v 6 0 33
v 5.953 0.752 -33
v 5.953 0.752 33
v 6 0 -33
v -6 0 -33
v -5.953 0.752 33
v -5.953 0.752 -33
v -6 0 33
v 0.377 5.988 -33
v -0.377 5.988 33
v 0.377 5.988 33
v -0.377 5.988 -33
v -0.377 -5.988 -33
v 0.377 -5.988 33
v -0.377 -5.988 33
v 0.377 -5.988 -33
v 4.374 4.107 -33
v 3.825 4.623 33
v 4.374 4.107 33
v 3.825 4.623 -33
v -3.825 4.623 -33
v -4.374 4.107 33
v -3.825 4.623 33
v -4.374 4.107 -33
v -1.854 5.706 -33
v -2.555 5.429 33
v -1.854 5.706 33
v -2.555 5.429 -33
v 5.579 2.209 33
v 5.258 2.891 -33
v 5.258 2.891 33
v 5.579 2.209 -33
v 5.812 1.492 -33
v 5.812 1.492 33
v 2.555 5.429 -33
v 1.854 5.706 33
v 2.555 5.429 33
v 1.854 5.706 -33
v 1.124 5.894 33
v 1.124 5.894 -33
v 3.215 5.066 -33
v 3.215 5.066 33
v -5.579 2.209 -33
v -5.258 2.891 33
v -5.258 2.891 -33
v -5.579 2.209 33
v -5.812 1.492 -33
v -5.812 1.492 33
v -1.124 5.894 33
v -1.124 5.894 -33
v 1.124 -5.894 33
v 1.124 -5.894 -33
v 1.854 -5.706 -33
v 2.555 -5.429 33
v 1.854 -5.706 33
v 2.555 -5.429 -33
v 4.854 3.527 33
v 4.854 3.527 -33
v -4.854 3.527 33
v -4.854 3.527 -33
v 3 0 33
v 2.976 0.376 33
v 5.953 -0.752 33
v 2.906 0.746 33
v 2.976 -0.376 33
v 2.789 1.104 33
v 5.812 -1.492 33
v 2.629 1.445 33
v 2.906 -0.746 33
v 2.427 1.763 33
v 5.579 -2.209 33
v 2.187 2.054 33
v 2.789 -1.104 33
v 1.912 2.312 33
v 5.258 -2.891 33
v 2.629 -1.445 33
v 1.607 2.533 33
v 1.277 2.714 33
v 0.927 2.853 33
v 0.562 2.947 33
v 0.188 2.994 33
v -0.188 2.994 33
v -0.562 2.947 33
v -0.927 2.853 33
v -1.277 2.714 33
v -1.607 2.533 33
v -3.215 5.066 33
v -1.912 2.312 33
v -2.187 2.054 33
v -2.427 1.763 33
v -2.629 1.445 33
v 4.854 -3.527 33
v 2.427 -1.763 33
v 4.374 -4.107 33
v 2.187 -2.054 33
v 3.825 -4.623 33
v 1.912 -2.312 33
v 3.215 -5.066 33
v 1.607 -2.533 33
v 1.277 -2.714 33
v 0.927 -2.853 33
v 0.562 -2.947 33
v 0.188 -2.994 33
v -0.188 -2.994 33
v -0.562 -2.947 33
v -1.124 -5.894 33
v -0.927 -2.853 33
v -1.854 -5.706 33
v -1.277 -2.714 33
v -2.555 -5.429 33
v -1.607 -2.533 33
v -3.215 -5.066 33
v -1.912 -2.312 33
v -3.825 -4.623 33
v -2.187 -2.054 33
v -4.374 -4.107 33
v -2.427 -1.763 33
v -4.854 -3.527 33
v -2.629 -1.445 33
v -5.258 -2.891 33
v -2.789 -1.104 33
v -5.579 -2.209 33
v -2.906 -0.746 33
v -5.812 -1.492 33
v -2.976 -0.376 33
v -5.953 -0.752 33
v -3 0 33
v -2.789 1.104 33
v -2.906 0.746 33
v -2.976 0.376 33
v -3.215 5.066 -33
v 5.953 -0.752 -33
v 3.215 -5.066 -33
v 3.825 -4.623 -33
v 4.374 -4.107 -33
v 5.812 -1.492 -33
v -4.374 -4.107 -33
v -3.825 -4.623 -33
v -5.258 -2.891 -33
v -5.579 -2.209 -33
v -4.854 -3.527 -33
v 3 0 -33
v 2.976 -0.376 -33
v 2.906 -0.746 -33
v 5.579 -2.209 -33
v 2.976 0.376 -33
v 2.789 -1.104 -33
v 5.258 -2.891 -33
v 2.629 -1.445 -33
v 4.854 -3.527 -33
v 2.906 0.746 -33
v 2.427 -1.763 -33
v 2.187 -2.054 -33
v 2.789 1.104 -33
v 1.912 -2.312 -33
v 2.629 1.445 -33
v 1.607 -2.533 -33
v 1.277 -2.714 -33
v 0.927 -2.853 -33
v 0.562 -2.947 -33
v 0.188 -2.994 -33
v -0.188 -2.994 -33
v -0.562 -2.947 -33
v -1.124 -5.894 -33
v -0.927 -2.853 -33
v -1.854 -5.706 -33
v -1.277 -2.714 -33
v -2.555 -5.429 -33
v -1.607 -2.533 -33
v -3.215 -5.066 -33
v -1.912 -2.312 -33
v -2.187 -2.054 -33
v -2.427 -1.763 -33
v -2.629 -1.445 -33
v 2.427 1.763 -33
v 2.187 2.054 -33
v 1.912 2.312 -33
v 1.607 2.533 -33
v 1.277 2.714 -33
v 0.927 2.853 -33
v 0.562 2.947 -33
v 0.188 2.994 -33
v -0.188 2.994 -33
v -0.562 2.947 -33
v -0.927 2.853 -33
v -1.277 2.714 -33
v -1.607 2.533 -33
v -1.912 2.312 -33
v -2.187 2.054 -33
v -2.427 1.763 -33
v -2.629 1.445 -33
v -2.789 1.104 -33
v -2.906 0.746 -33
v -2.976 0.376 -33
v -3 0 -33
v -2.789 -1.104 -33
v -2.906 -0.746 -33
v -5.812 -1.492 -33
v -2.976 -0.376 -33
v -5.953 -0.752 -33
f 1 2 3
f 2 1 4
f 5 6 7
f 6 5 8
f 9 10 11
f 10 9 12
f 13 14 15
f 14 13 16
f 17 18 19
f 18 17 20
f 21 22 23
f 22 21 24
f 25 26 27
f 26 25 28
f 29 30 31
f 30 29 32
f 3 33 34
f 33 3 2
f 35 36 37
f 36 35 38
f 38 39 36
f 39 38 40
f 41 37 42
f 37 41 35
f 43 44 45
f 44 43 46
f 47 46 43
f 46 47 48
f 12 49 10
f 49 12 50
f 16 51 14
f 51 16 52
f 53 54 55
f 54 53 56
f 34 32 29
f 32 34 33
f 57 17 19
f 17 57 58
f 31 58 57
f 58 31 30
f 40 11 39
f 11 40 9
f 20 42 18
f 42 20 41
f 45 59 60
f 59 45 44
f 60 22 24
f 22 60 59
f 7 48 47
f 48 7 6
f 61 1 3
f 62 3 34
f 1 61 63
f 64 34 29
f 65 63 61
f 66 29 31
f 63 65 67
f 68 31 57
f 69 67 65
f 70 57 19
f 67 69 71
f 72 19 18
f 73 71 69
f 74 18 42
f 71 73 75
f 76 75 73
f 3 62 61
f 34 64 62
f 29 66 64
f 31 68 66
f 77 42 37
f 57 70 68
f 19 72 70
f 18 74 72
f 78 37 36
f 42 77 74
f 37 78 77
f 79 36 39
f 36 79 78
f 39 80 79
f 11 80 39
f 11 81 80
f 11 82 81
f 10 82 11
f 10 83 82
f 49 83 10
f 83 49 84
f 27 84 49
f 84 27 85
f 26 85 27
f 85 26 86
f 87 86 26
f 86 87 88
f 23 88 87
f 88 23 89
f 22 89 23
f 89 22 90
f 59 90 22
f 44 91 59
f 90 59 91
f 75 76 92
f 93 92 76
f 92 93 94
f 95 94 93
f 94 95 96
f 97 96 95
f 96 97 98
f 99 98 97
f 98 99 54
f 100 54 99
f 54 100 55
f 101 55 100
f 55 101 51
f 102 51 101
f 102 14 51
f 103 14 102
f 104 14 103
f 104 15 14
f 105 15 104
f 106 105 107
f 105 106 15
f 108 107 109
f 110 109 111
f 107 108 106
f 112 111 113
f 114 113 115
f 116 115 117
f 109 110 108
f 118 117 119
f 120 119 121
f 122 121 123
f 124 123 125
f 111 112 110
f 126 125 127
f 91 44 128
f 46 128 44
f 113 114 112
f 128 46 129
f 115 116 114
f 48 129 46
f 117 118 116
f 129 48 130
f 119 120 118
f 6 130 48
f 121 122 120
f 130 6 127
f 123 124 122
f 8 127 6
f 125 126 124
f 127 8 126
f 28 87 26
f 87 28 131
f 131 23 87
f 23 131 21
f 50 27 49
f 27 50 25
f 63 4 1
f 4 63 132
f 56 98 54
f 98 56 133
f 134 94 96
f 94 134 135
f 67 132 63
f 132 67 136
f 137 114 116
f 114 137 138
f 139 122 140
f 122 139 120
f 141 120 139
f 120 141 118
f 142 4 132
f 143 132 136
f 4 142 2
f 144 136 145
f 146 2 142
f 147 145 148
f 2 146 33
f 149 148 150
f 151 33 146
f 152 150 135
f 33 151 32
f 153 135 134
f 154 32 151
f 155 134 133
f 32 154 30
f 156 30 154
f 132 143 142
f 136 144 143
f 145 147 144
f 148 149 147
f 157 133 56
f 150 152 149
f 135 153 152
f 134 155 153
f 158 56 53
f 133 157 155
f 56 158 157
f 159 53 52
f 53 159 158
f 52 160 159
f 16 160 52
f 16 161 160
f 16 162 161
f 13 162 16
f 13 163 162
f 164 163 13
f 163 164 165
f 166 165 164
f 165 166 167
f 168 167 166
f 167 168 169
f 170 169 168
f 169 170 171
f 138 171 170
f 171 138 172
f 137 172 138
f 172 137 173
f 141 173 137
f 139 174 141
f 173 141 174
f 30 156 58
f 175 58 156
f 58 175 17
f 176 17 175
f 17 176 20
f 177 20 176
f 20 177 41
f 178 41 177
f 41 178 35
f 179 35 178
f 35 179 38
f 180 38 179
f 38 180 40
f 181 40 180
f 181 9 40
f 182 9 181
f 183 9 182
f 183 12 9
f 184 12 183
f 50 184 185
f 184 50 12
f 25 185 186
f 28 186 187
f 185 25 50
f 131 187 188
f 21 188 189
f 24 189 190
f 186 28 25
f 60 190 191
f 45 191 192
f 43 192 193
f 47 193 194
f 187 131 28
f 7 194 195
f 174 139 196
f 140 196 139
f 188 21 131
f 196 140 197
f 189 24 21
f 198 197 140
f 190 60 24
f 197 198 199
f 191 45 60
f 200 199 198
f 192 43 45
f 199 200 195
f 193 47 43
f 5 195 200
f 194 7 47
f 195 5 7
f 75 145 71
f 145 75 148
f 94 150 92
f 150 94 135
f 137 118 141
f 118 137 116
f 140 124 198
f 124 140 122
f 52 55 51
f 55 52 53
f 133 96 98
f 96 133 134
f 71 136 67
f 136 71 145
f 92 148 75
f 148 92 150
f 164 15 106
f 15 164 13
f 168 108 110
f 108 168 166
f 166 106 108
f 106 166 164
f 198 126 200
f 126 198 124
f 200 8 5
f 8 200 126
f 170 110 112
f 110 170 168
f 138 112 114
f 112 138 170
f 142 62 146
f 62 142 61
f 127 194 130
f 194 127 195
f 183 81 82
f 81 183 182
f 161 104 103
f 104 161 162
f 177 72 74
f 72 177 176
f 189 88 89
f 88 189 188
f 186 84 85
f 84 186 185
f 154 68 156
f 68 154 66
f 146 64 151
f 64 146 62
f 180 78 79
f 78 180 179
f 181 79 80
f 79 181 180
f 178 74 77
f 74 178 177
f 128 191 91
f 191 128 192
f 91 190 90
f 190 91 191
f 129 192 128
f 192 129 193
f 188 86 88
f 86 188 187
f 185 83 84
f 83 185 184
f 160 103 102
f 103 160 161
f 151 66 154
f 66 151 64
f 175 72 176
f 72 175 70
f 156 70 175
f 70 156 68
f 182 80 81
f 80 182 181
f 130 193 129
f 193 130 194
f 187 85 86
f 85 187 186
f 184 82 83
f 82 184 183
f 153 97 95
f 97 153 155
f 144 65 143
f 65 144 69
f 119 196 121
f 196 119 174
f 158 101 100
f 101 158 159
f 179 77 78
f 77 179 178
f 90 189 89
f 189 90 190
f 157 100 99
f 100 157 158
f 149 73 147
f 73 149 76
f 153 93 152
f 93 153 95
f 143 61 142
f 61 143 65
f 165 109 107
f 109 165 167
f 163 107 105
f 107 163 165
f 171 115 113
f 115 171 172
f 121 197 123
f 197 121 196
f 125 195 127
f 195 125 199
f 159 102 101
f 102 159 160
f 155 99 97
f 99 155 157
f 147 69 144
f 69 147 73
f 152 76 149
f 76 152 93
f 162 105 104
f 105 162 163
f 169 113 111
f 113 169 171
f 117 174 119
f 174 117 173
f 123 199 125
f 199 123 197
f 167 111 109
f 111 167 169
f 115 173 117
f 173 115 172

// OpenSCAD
$fn = 50;


difference() {
	union() {
		translate(v = [0, 0, -33.0000000000]) {
			cylinder(h = 66, r = 6.0000000000);
		}
	}
	union() {
		translate(v = [0, 0, -100.0000000000]) {
			cylinder(h = 200, r = 3);
		}
	}
}
